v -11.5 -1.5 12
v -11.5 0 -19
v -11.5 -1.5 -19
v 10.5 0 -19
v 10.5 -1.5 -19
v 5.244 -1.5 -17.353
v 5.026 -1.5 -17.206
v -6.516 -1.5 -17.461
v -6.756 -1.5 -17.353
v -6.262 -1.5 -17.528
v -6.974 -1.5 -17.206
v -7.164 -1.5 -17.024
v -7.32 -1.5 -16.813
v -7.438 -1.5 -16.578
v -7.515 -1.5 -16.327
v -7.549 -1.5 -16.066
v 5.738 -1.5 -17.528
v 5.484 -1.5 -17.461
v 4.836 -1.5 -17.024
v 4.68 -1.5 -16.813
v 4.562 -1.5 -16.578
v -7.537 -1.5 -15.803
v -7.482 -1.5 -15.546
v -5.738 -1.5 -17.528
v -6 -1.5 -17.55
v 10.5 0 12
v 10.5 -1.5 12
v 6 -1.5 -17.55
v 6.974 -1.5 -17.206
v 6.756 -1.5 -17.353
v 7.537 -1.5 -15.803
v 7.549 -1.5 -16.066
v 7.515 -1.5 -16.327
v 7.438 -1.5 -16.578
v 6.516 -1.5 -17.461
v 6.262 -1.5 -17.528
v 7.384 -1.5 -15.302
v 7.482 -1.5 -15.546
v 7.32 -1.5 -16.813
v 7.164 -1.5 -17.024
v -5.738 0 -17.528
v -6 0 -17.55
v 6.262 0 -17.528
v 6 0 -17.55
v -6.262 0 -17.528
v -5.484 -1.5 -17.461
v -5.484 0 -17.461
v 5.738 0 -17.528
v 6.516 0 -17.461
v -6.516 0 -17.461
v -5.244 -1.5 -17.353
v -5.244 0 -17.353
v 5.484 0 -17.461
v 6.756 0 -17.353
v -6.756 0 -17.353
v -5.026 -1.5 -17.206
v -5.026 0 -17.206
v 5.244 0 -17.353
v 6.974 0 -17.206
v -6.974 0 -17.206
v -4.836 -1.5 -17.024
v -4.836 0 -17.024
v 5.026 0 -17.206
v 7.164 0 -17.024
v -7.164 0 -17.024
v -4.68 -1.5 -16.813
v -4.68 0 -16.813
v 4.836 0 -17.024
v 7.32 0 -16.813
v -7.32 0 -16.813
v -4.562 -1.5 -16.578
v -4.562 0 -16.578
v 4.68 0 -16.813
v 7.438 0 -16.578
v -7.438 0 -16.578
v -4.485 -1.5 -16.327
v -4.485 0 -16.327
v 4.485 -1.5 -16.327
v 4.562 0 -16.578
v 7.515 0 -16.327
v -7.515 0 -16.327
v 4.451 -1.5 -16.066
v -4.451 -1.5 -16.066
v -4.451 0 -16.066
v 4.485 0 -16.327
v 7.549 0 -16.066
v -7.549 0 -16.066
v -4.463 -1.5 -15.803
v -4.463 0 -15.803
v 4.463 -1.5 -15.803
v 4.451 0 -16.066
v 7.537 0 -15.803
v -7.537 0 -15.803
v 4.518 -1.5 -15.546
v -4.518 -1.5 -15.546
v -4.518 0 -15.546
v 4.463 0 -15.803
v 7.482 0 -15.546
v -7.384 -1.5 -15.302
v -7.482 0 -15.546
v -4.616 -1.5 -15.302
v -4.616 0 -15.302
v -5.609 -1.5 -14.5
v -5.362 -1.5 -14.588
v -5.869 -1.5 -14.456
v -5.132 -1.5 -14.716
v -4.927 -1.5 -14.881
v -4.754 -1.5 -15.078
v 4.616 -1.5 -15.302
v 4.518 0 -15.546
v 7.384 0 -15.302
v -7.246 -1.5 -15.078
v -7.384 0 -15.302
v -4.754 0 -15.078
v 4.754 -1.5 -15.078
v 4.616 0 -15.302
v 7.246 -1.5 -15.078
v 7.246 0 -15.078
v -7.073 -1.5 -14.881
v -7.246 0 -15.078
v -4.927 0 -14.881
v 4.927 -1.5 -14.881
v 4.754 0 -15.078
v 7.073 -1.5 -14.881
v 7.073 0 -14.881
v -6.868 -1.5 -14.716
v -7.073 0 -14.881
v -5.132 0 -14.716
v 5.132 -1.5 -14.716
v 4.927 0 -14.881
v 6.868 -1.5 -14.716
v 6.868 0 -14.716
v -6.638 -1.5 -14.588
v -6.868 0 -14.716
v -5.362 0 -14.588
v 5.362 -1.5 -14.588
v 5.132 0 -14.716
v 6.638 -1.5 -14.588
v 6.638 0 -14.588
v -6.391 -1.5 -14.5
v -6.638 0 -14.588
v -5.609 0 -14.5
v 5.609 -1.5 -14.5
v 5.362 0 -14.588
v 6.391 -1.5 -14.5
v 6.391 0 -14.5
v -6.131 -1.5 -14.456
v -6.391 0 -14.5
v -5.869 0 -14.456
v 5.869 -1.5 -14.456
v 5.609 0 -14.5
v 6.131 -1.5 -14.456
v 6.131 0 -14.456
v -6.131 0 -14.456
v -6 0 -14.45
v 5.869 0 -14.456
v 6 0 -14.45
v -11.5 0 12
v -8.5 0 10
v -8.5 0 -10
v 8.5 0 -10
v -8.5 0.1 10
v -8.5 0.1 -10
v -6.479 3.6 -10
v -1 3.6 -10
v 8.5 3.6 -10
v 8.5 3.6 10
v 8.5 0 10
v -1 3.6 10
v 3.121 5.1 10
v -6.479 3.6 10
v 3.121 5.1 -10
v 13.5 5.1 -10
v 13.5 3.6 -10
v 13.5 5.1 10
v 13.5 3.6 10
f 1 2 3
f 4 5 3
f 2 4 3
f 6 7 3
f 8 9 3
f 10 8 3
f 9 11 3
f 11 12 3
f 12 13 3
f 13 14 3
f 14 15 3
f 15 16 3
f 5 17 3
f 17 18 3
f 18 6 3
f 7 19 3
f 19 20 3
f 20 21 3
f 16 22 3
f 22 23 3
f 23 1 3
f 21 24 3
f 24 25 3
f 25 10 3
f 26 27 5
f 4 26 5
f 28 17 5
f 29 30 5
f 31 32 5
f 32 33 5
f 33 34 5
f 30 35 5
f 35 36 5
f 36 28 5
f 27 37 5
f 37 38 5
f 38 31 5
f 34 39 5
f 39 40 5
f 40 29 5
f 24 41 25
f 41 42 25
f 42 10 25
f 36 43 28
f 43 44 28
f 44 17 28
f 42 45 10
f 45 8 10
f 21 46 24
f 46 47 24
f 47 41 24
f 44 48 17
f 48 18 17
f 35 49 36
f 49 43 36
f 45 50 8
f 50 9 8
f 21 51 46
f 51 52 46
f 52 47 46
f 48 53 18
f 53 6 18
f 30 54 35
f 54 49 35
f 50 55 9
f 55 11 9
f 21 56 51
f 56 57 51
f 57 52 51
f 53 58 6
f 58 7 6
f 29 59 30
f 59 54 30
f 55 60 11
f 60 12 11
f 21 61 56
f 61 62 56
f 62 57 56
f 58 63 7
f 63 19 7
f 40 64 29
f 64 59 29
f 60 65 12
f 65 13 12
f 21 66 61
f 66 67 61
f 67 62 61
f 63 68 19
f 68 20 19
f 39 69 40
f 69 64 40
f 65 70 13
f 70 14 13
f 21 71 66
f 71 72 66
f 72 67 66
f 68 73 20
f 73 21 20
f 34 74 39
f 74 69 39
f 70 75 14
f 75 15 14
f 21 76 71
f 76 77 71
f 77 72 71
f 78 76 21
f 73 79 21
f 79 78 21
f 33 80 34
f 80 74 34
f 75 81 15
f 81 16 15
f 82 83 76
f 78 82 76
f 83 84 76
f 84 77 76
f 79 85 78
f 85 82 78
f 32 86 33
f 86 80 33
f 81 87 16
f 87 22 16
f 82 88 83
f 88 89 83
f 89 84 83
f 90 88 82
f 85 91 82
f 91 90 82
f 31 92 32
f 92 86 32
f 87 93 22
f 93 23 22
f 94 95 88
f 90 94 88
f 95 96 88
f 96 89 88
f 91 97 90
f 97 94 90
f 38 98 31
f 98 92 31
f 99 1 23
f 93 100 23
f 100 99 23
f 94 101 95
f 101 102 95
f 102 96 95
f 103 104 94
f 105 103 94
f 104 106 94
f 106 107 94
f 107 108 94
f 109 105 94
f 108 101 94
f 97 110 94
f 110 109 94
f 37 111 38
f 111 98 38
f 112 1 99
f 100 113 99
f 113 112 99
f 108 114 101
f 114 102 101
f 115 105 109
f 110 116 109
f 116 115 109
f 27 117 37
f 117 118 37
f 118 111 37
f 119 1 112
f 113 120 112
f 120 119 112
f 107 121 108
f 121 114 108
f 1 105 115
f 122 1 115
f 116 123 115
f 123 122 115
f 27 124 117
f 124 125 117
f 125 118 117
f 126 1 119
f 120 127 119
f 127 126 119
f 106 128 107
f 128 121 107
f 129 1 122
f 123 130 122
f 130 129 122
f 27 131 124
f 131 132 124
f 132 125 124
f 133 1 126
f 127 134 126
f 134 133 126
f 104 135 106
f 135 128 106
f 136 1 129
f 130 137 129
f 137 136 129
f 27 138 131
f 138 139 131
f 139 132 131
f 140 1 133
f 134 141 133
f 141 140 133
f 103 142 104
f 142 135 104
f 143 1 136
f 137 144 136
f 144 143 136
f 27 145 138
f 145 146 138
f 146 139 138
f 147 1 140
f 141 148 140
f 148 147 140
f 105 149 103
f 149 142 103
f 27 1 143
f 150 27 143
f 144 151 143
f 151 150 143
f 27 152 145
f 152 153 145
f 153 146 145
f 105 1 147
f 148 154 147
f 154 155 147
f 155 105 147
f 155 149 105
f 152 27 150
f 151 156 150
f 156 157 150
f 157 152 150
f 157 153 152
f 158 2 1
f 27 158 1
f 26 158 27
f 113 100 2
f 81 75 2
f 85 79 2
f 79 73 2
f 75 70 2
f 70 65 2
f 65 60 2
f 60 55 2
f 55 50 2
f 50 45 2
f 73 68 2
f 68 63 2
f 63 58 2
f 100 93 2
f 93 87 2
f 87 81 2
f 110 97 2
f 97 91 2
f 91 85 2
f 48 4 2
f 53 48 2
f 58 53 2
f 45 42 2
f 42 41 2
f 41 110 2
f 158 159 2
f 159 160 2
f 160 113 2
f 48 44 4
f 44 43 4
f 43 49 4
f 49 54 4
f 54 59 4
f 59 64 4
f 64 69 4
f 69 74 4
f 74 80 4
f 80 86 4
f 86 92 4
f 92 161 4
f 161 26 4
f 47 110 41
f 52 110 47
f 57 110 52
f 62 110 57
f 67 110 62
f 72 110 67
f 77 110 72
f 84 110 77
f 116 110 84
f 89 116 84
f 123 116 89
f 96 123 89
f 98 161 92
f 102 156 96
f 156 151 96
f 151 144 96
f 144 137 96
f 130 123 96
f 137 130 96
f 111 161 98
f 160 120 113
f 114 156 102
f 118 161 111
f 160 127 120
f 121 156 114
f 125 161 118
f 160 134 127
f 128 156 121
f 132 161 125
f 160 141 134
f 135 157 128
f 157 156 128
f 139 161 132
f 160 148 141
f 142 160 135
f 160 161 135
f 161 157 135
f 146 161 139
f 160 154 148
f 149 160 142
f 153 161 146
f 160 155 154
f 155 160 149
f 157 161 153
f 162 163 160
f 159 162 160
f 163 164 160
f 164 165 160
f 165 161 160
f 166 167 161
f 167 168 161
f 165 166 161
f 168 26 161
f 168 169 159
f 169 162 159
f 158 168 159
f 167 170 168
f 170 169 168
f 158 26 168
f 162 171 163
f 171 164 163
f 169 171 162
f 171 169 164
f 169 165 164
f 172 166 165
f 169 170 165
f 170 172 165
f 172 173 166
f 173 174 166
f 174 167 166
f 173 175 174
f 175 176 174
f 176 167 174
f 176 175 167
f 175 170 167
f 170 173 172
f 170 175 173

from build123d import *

# Parameters (mm, degrees)
SKIZZE2_W                        = 17
SKIZZE2_H                        = 20
AUFSATZ_LINEAR_AUSTRAGEN1_DEPTH  = 3.6
SKIZZE3_W                        = 22
SKIZZE3_H                        = 31
AUFSATZ_LINEAR_AUSTRAGEN2_DEPTH  = 1.5
F_3_1_3_1_DURCHMESSER_BOHRUNG1_D = 3.1
SKIZZE10_W                       = 10
SKIZZE10_H                       = 20
AUFSATZ_LINEAR_AUSTRAGEN3_DEPTH  = 1.5
FASE4_SIZE                       = 4.5
FASE4_SIZE_2                     = 1.637866054
FASE5_SIZE                       = 3.5
FASE5_SIZE2                      = 2.020725942


with BuildPart() as part:
    # Skizze2 → Aufsatz-Linear austragen1 (new body)
    with BuildSketch(Plane(origin=(0, 0, 0), x_dir=(1, 0, 0), z_dir=(0, 1, 0))):
        Rectangle(SKIZZE2_W, SKIZZE2_H)
    extrude(amount=AUFSATZ_LINEAR_AUSTRAGEN1_DEPTH)

    # Skizze3 → Aufsatz-Linear austragen2 (add)
    with BuildSketch(Plane(origin=(0, 0, 0), x_dir=(-1, 0, 0), z_dir=(0, -1, 0))):
        with Locations((0.5, 3.5)):
            Rectangle(SKIZZE3_W, SKIZZE3_H)
    extrude(amount=AUFSATZ_LINEAR_AUSTRAGEN2_DEPTH)

    # Ø3.1 (3.1) Durchmesser Bohrung1 (through all)
    with Locations(Plane(origin=(0, -1.5, 0), x_dir=(-1, 0, 0), z_dir=(0, -1, 0))):
        with Locations((6, 16), (-6, 16)):
            Hole(F_3_1_3_1_DURCHMESSER_BOHRUNG1_D / 2)

    # Skizze10 → Aufsatz-Linear austragen3 (add)
    with BuildSketch(Plane(origin=(0, 3.6, 0), x_dir=(1, 0, 0), z_dir=(0, 1, 0))):
        with Locations((8.5, 0)):
            Rectangle(SKIZZE10_W, SKIZZE10_H)
    extrude(amount=AUFSATZ_LINEAR_AUSTRAGEN3_DEPTH)

    # Fase4
    # the kernel refuses this chamfer: 4.5, 1.637866054 mm, written as the material it adds along each edge
    with BuildSketch(Plane(origin=(3.5, 3.6, -10), x_dir=(-0.9999130865277315, -0.01318405819864591, 0), z_dir=(0, 0, 1))) as fase4_piece_1_section:
        Polygon((FASE4_SIZE * 0.999913086528, -FASE4_SIZE * 0.0131840581986), (-FASE4_SIZE_2 * 0.0131840582002, -FASE4_SIZE_2 * 0.999913086649), (0, 0), align=None)
    fase4_piece_1 = extrude(amount=20, mode=Mode.PRIVATE)
    fase4_piece_1 = split(fase4_piece_1, bisect_by=Plane(origin=(1.935786974, 5.1, 0), z_dir=(0, -1, 0)), keep=Keep.TOP, mode=Mode.PRIVATE)
    add(fase4_piece_1)

    # Fase5
    fase5_edges = [part.edges().sort_by_distance(p)[0] for p in [
        (-8.5, 3.6, 0),
    ]]
    fase5_side = [part.faces().sort_by_distance(p)[0] for p in [
        (-8.5, 1.8, 0),
    ]]
    chamfer(fase5_edges, length=FASE5_SIZE, length2=FASE5_SIZE2, reference=fase5_side[0])


solid = part.part
